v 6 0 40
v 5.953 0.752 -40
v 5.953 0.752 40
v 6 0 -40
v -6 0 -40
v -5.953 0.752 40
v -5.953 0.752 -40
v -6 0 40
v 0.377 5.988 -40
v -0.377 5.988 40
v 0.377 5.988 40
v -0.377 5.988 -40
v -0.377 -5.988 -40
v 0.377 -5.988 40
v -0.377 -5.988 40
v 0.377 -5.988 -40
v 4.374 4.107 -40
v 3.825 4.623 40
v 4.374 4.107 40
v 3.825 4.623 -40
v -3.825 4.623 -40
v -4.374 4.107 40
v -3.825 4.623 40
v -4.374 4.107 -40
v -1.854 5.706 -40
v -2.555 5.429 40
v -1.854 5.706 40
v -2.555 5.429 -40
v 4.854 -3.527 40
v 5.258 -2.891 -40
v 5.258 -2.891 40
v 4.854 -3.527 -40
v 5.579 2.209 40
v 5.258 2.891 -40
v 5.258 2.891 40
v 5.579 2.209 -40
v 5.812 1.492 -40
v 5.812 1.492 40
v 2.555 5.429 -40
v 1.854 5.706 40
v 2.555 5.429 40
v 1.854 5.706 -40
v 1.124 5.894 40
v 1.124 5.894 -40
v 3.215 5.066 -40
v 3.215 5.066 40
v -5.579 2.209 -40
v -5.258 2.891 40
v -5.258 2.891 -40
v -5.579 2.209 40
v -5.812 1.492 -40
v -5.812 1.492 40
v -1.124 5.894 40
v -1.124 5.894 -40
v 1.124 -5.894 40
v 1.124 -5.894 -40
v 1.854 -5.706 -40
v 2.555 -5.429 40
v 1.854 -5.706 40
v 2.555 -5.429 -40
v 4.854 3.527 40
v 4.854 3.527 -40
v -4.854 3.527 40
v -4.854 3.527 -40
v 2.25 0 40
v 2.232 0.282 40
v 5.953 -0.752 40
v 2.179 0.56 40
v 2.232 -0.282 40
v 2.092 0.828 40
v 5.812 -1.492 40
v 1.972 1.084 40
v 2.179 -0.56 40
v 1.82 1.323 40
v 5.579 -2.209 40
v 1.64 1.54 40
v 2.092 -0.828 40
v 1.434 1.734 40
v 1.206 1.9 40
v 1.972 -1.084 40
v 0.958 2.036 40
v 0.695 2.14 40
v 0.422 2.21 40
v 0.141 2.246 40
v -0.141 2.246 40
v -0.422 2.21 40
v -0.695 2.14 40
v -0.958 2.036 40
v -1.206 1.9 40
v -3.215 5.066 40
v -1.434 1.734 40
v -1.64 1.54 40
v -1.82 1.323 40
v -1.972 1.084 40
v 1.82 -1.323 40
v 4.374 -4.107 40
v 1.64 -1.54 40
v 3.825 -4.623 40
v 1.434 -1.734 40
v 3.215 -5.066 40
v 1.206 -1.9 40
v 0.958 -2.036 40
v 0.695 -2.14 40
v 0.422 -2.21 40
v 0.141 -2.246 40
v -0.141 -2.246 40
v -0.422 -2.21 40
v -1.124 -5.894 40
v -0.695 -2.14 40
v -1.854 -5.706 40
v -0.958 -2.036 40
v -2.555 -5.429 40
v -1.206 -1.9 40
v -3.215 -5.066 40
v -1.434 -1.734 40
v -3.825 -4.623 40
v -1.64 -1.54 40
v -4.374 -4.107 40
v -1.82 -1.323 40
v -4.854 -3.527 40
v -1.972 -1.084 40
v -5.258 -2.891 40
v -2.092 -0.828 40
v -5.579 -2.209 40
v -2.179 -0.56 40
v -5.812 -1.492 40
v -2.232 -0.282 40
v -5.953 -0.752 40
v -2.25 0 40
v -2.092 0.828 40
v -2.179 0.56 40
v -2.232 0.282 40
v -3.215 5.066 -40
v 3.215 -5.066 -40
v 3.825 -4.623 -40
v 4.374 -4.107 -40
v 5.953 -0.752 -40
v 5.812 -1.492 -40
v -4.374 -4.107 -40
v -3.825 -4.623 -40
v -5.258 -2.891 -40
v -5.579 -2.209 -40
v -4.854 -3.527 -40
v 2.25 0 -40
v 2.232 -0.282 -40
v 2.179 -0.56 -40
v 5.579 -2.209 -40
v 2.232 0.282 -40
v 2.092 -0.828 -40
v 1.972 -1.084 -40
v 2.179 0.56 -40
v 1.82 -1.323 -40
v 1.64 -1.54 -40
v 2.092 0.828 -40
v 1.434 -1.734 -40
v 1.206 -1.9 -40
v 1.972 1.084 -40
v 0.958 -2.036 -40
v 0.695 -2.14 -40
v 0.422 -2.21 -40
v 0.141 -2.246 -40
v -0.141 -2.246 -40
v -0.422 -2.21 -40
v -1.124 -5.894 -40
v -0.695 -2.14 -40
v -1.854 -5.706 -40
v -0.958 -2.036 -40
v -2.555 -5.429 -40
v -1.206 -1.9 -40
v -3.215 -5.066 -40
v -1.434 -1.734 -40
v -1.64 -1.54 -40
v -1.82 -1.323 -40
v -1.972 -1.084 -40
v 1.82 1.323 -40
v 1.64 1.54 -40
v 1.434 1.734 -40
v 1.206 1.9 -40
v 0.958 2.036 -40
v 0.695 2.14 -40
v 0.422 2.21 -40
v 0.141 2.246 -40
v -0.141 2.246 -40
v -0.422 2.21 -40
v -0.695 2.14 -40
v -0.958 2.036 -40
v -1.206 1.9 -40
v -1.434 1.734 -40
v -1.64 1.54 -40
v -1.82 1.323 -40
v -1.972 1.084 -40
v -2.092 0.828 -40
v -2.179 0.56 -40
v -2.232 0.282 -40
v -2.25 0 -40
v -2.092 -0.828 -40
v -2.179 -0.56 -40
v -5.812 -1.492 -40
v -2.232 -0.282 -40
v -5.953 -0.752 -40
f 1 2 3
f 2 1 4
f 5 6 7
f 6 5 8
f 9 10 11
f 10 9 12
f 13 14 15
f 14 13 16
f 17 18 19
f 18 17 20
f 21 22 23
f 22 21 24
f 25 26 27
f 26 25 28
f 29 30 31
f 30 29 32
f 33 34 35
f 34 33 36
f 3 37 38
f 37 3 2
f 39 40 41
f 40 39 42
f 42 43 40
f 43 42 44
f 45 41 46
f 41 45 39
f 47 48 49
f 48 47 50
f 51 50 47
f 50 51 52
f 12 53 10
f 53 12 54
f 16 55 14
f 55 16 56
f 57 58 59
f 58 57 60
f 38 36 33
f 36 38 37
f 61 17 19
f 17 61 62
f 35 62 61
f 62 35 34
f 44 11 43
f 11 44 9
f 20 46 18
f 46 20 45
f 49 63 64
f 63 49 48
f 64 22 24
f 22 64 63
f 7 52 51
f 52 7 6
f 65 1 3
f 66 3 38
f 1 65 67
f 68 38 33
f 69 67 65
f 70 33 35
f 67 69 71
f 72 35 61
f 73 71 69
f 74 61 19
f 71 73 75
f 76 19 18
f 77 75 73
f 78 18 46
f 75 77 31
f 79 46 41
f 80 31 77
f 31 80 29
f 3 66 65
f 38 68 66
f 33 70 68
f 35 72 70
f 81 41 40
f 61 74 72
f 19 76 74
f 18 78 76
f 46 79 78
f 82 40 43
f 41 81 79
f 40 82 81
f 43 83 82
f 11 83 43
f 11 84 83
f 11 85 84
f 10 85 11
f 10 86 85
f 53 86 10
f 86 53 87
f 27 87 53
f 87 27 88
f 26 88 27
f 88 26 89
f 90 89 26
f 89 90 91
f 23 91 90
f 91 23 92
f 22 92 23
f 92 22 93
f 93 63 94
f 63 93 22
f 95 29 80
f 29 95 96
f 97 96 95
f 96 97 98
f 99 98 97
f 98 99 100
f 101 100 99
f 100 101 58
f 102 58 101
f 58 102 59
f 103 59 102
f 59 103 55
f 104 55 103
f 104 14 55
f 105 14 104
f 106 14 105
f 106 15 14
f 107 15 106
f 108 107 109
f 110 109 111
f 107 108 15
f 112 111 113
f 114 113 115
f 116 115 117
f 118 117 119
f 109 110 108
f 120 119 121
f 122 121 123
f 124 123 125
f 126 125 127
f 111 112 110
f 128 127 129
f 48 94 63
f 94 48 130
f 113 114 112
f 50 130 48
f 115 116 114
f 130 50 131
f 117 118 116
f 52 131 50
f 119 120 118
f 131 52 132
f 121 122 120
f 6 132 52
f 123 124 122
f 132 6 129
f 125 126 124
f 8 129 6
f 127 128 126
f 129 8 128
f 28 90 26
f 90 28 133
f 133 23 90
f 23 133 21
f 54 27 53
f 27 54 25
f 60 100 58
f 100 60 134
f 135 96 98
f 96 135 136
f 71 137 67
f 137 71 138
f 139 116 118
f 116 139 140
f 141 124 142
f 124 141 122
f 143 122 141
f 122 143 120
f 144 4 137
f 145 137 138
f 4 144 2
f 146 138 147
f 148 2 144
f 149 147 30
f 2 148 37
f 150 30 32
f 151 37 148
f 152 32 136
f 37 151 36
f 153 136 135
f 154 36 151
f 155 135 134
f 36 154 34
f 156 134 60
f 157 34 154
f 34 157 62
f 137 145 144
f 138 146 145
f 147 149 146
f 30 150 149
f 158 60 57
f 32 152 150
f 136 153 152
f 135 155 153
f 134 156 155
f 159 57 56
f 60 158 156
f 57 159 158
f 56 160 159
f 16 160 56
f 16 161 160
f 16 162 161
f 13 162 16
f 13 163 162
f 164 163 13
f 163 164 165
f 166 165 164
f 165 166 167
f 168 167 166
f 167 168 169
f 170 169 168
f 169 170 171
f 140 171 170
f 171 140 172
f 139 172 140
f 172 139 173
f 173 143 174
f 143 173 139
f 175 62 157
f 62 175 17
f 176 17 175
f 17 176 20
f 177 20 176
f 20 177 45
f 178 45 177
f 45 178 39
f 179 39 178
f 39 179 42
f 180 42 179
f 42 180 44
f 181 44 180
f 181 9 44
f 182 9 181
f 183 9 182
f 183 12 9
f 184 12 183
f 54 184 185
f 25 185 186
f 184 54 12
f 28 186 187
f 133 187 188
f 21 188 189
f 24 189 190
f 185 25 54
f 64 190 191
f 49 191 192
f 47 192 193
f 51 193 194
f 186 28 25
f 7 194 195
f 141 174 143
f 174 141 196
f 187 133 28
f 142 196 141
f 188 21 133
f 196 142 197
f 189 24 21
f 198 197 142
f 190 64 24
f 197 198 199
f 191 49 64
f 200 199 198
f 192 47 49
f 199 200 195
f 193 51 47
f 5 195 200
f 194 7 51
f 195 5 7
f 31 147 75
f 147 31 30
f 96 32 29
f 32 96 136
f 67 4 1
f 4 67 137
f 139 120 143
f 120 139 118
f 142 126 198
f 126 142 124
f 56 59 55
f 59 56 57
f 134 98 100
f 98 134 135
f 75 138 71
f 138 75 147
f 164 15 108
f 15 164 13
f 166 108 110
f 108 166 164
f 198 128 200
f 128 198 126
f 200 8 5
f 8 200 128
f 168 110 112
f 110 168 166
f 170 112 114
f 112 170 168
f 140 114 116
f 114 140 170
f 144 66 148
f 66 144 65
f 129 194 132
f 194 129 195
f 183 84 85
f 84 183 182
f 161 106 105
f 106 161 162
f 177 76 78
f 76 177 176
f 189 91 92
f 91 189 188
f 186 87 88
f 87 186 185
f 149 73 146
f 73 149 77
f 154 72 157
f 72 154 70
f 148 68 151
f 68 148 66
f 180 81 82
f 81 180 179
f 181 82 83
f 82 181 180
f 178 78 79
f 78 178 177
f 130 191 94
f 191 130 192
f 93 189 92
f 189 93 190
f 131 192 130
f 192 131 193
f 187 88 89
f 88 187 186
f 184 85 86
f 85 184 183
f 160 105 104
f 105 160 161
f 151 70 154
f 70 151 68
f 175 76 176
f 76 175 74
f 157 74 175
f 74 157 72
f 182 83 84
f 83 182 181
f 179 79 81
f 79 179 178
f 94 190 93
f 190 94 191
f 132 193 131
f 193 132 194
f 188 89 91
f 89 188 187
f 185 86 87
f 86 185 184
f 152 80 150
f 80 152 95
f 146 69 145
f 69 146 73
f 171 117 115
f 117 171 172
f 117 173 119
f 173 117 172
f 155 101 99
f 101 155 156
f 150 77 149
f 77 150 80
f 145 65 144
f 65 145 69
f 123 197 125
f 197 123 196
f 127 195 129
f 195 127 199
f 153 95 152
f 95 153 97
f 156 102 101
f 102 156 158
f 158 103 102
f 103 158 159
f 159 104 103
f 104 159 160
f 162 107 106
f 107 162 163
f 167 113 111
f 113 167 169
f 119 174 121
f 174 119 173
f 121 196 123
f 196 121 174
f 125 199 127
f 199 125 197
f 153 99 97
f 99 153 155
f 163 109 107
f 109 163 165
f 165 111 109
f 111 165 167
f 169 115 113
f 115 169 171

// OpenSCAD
$fn = 50;


difference() {
	union() {
		translate(v = [0, 0, -40.0000000000]) {
			cylinder(h = 80, r = 6.0000000000);
		}
	}
	union() {
		translate(v = [0, 0, -100.0000000000]) {
			cylinder(h = 200, r = 2.2500000000);
		}
	}
}
